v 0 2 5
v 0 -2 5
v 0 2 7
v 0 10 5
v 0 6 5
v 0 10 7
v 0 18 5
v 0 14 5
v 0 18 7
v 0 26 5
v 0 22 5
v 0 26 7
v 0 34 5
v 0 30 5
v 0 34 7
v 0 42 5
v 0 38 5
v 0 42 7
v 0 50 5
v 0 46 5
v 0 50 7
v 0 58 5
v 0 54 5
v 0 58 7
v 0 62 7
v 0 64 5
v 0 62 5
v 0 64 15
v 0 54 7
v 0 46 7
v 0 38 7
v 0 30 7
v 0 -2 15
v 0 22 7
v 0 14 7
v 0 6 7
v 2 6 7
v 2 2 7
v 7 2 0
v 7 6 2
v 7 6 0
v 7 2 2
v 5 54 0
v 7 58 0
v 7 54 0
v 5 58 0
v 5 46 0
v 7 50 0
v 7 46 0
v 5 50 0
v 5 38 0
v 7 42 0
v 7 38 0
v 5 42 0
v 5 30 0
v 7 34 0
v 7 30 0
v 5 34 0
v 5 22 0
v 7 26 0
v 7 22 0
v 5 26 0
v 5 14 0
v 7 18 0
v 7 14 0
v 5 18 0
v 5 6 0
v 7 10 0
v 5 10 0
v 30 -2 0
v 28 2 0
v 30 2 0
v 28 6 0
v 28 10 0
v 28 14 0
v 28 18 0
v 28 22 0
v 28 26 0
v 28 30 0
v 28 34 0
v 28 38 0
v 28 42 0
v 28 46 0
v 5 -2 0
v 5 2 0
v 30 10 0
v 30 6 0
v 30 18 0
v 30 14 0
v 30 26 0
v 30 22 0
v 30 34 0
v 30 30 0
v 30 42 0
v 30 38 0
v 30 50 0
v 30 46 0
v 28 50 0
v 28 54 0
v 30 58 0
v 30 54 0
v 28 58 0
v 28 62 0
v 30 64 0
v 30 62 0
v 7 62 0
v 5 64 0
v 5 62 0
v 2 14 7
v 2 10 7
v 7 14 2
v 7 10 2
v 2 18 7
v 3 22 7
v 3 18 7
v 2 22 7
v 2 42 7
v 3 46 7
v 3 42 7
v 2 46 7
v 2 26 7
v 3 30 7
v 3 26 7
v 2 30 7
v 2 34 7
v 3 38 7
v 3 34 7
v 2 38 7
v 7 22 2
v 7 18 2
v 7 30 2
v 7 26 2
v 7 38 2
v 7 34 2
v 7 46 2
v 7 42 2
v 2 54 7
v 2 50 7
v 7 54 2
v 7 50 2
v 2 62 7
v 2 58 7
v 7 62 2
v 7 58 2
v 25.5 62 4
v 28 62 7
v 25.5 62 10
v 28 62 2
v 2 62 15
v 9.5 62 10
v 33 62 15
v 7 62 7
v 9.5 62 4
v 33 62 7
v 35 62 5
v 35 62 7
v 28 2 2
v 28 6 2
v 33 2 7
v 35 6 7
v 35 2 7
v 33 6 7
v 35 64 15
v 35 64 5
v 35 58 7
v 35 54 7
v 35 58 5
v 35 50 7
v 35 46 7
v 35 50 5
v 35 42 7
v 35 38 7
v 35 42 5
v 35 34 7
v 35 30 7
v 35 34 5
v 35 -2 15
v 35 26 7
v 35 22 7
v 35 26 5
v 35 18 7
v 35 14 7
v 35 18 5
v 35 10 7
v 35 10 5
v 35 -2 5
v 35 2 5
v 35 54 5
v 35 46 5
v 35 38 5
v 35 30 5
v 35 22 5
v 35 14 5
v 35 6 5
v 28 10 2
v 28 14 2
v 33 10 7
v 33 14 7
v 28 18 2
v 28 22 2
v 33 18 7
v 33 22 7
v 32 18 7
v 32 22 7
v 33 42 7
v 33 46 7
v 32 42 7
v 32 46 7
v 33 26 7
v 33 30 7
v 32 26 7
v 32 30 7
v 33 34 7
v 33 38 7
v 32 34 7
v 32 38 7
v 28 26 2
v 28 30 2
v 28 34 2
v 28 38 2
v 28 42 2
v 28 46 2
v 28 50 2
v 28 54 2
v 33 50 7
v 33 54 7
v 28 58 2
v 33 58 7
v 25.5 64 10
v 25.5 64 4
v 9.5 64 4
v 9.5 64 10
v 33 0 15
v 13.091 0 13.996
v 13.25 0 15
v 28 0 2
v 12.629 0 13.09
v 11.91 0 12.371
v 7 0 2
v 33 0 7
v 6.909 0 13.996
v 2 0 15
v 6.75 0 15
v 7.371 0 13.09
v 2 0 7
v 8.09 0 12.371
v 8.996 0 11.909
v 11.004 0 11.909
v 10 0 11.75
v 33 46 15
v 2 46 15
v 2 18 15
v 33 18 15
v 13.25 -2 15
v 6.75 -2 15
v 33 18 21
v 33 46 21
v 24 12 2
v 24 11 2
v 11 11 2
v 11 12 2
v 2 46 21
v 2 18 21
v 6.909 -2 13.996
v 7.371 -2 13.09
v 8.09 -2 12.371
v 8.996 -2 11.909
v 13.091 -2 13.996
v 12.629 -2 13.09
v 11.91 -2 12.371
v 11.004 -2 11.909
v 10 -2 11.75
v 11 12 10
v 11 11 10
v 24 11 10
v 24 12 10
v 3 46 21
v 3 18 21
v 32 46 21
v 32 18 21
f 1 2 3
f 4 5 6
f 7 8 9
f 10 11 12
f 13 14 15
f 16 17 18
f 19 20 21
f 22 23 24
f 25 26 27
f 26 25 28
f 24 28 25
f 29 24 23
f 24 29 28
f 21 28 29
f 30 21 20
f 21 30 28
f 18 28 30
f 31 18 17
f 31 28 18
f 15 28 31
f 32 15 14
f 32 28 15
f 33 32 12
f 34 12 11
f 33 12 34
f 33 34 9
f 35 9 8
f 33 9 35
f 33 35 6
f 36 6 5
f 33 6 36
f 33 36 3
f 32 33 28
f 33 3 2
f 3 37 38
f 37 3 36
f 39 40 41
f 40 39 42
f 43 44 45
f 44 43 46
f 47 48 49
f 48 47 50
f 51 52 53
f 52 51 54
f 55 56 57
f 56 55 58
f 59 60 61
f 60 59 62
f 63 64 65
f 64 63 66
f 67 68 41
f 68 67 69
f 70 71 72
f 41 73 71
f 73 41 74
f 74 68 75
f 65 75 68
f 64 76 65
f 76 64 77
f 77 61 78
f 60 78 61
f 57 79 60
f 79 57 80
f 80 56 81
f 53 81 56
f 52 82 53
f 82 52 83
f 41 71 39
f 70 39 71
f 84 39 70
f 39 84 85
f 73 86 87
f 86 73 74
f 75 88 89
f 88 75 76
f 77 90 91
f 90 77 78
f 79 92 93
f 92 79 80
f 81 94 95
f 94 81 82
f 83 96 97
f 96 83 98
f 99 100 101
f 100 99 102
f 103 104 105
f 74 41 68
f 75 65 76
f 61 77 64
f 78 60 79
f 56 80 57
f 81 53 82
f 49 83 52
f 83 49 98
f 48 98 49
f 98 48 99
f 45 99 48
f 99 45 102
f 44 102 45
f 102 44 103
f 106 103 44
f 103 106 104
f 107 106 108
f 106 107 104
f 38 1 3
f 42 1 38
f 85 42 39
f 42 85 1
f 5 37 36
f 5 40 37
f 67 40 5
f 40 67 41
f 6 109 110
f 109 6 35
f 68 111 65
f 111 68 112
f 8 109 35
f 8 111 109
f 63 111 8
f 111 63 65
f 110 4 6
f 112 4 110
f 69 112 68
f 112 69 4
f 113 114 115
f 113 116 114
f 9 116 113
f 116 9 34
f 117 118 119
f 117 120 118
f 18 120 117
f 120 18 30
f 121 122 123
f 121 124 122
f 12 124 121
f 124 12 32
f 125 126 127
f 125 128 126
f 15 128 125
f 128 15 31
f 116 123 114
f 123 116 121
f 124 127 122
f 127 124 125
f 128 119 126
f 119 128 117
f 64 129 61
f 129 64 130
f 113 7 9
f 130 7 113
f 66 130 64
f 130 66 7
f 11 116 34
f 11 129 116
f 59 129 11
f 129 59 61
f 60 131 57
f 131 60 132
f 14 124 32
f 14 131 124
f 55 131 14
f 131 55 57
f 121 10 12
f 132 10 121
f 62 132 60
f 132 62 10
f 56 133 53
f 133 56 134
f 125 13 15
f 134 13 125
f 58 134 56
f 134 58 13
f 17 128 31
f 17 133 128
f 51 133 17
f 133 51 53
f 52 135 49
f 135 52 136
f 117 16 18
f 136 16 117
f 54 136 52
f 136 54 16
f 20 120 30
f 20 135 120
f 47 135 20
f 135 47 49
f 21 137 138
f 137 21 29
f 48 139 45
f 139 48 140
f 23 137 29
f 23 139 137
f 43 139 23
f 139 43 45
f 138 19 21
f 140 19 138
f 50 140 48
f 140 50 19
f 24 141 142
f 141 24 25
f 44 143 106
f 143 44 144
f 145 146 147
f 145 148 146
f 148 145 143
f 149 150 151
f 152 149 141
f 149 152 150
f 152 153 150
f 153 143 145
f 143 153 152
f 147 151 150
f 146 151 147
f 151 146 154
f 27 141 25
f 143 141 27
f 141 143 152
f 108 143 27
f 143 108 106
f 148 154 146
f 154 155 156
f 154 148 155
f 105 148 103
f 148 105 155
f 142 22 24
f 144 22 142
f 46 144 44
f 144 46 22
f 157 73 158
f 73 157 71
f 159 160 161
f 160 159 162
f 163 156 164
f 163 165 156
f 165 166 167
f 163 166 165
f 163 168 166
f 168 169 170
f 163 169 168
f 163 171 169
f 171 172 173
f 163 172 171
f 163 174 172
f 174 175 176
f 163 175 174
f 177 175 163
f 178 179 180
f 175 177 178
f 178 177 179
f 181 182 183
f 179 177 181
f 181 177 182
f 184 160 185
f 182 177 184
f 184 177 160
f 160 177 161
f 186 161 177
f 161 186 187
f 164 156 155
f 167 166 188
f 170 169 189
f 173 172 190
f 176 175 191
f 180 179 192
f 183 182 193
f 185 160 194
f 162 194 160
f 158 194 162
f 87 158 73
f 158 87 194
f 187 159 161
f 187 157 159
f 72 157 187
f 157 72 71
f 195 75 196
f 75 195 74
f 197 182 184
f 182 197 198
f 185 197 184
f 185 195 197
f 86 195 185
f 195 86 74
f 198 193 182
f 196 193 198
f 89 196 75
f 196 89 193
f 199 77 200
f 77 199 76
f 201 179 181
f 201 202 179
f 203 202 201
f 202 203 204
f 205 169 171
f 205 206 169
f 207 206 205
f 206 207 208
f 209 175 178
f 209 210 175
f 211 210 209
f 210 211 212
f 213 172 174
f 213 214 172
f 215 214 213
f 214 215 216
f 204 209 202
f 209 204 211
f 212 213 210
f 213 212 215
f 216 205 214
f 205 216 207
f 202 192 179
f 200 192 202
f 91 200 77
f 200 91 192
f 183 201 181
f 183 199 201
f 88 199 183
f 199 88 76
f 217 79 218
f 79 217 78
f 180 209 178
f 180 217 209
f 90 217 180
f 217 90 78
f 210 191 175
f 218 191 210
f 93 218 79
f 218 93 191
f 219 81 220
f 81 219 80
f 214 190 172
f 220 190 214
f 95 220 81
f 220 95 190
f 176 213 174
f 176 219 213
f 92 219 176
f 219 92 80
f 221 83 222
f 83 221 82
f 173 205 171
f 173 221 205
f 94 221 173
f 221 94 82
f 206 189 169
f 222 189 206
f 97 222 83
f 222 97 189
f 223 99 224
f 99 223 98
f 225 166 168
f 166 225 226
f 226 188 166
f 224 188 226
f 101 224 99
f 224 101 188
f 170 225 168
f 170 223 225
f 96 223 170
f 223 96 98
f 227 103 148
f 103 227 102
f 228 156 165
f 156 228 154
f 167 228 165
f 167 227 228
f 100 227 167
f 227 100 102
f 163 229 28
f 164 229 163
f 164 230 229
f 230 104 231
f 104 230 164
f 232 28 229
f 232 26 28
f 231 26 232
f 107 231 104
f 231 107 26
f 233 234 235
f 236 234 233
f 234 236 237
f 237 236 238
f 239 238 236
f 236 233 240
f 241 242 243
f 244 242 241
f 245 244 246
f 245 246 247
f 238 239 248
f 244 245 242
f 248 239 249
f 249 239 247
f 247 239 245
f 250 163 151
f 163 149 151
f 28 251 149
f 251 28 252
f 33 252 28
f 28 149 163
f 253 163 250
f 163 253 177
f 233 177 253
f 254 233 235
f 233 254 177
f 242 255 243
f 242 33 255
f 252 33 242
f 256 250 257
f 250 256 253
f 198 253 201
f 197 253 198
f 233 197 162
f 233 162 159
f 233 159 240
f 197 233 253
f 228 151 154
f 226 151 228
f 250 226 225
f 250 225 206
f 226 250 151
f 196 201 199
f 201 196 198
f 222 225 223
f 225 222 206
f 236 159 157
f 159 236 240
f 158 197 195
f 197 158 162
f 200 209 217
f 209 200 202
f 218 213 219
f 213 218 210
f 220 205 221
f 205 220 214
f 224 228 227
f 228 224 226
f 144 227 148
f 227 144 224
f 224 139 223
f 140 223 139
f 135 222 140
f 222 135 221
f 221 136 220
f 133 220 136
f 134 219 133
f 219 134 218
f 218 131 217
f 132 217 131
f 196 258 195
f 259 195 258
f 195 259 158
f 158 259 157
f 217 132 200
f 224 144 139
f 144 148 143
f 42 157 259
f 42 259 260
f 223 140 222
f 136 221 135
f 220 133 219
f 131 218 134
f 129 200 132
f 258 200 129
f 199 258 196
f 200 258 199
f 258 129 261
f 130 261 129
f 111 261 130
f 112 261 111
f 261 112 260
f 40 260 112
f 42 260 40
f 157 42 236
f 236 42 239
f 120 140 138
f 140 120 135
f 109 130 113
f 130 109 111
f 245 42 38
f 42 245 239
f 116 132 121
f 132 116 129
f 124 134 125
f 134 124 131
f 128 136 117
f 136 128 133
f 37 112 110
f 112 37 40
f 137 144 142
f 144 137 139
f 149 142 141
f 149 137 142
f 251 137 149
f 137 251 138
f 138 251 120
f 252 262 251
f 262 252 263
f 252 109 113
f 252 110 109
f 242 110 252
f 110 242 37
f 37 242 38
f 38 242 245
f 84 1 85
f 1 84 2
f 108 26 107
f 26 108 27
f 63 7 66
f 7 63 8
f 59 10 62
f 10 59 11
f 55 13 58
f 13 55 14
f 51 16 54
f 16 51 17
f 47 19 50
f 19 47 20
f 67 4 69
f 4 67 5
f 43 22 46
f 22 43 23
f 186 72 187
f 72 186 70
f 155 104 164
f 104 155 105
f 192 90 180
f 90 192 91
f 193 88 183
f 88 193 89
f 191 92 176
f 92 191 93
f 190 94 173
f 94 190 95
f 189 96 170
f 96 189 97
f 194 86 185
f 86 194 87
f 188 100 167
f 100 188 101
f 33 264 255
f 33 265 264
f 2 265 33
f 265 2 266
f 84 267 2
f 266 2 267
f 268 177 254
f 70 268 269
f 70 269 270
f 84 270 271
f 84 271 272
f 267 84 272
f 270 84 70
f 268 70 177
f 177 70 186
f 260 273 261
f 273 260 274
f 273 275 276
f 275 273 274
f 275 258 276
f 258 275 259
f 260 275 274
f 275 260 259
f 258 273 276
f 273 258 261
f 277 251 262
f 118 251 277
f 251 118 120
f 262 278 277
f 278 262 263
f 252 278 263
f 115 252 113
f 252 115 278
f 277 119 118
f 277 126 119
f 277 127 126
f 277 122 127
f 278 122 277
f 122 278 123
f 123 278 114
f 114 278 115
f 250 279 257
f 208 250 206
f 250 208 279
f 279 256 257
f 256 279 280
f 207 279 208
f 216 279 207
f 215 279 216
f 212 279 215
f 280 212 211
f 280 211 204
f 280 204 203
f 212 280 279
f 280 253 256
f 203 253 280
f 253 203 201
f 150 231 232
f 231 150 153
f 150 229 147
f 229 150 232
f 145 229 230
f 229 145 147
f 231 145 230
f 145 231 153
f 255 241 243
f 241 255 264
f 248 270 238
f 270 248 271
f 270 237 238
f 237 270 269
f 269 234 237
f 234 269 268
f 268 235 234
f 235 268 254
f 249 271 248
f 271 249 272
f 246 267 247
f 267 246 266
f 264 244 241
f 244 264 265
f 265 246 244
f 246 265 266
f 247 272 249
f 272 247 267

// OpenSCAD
$fn = 20;

thick = 2;
xmax = 35;
ymax = 60+thick;
zmax = 15;

edge=5;

//xmt = xmax + 2*thick;
//ymt = ymax + 2*thick;    

//   shell_bot();

difference() {
    shell_bottom();
}


module shell_bottom() {

/*
    translate([7, 0, thick])
        cube([1,ymax,2]);
    translate([7+20, 0, thick])
        cube([1,ymax,2]);
*/    
    difference(){
        base_shape();
        cubes_left();    
        cubes_right();
    translate([xmax/2-8, ymax-1, 4])
        cube([16, 4, 6]);
    translate([10, 2, zmax])
        rotate([90,0,0])
            cylinder(h=5, r=3.25);
//    translate([8.5, 3.5, -1])
//        cube([18, 55, 1]);

    }

}



module base_shape() {
    translate([0, ymax+thick, 0])
        rotate([90,0,0]) 
            linear_extrude(ymax+thick)
                base_shape_2d(thick);

    translate([0, ymax+thick])
        base_shape_holder();
    translate([0, 0])
        base_shape_holder();

    translate([11, 11, thick])
        cube([13, 1, 08]);

    translate([thick+1, 18, 7])
        rotate([0,0,90])
            cube([28, 1, 14]);
    translate([xmax-thick, 18, 7])
        rotate([0,0,90])
            cube([28, 1, 14]);

/*
    translate([thick, 16, 5])
        cube([5, 1, 10]);
    translate([xmax-thick-5, 16, 5])
        cube([5, 1, 10]);
    translate([thick, 47, 5])
        cube([5, 1, 10]);
    translate([xmax-thick-5, 47, 5])
        cube([5, 1, 10]);
*/
}

module base_shape_holder() {
    
    rotate([90,0,0])
    linear_extrude(thick)
        base_shape_2da();

}

module base_shape_2da() {
    th = 10;
    polygon([[0, zmax], [0, edge], [edge,0], [xmax-edge, 0], [xmax, edge], [xmax, zmax],/*[xmax-th,zmax], [xmax-th, edge+th], [xmax-edge-th, th],[edge+th, th]*/, [th, edge+th],[th, zmax]]);
}


module base_shape_2d(th) {
    polygon([[0, zmax], [0, edge], [edge,0], [xmax-edge, 0], [xmax, edge], [xmax, zmax],[xmax-th,zmax], [xmax-th, edge+th], [xmax-edge-th, th],[edge+th, th], [th, edge+th],[th, zmax]]);
}

module cubes_left() {
    for(i = [2:8:ymax])
      translate([0, i, 0])
      cube([edge+thick, 4, edge+thick]);
}

module cubes_right() {
    for(i = [2:8:ymax])
      translate([xmax-edge-thick, i, 0])
      cube([edge+thick, 4, edge+thick]);
}
    
module screw(r) {    
    difference() {
        cylinder(zmax,r*1.2,r*1.2);
        translate([0,0,-1]);
            cylinder(zmax+2,r/2+0.2,r/2+0.2);
//        cylinder(5,6,6);
    }
}

module foot(r, h) {    
    difference() {
        cylinder(h,r*2,r*1.3);
            cylinder(h,r/2+0.2,r/2+0.2);
//        cylinder(5,6,6);
    }
}
